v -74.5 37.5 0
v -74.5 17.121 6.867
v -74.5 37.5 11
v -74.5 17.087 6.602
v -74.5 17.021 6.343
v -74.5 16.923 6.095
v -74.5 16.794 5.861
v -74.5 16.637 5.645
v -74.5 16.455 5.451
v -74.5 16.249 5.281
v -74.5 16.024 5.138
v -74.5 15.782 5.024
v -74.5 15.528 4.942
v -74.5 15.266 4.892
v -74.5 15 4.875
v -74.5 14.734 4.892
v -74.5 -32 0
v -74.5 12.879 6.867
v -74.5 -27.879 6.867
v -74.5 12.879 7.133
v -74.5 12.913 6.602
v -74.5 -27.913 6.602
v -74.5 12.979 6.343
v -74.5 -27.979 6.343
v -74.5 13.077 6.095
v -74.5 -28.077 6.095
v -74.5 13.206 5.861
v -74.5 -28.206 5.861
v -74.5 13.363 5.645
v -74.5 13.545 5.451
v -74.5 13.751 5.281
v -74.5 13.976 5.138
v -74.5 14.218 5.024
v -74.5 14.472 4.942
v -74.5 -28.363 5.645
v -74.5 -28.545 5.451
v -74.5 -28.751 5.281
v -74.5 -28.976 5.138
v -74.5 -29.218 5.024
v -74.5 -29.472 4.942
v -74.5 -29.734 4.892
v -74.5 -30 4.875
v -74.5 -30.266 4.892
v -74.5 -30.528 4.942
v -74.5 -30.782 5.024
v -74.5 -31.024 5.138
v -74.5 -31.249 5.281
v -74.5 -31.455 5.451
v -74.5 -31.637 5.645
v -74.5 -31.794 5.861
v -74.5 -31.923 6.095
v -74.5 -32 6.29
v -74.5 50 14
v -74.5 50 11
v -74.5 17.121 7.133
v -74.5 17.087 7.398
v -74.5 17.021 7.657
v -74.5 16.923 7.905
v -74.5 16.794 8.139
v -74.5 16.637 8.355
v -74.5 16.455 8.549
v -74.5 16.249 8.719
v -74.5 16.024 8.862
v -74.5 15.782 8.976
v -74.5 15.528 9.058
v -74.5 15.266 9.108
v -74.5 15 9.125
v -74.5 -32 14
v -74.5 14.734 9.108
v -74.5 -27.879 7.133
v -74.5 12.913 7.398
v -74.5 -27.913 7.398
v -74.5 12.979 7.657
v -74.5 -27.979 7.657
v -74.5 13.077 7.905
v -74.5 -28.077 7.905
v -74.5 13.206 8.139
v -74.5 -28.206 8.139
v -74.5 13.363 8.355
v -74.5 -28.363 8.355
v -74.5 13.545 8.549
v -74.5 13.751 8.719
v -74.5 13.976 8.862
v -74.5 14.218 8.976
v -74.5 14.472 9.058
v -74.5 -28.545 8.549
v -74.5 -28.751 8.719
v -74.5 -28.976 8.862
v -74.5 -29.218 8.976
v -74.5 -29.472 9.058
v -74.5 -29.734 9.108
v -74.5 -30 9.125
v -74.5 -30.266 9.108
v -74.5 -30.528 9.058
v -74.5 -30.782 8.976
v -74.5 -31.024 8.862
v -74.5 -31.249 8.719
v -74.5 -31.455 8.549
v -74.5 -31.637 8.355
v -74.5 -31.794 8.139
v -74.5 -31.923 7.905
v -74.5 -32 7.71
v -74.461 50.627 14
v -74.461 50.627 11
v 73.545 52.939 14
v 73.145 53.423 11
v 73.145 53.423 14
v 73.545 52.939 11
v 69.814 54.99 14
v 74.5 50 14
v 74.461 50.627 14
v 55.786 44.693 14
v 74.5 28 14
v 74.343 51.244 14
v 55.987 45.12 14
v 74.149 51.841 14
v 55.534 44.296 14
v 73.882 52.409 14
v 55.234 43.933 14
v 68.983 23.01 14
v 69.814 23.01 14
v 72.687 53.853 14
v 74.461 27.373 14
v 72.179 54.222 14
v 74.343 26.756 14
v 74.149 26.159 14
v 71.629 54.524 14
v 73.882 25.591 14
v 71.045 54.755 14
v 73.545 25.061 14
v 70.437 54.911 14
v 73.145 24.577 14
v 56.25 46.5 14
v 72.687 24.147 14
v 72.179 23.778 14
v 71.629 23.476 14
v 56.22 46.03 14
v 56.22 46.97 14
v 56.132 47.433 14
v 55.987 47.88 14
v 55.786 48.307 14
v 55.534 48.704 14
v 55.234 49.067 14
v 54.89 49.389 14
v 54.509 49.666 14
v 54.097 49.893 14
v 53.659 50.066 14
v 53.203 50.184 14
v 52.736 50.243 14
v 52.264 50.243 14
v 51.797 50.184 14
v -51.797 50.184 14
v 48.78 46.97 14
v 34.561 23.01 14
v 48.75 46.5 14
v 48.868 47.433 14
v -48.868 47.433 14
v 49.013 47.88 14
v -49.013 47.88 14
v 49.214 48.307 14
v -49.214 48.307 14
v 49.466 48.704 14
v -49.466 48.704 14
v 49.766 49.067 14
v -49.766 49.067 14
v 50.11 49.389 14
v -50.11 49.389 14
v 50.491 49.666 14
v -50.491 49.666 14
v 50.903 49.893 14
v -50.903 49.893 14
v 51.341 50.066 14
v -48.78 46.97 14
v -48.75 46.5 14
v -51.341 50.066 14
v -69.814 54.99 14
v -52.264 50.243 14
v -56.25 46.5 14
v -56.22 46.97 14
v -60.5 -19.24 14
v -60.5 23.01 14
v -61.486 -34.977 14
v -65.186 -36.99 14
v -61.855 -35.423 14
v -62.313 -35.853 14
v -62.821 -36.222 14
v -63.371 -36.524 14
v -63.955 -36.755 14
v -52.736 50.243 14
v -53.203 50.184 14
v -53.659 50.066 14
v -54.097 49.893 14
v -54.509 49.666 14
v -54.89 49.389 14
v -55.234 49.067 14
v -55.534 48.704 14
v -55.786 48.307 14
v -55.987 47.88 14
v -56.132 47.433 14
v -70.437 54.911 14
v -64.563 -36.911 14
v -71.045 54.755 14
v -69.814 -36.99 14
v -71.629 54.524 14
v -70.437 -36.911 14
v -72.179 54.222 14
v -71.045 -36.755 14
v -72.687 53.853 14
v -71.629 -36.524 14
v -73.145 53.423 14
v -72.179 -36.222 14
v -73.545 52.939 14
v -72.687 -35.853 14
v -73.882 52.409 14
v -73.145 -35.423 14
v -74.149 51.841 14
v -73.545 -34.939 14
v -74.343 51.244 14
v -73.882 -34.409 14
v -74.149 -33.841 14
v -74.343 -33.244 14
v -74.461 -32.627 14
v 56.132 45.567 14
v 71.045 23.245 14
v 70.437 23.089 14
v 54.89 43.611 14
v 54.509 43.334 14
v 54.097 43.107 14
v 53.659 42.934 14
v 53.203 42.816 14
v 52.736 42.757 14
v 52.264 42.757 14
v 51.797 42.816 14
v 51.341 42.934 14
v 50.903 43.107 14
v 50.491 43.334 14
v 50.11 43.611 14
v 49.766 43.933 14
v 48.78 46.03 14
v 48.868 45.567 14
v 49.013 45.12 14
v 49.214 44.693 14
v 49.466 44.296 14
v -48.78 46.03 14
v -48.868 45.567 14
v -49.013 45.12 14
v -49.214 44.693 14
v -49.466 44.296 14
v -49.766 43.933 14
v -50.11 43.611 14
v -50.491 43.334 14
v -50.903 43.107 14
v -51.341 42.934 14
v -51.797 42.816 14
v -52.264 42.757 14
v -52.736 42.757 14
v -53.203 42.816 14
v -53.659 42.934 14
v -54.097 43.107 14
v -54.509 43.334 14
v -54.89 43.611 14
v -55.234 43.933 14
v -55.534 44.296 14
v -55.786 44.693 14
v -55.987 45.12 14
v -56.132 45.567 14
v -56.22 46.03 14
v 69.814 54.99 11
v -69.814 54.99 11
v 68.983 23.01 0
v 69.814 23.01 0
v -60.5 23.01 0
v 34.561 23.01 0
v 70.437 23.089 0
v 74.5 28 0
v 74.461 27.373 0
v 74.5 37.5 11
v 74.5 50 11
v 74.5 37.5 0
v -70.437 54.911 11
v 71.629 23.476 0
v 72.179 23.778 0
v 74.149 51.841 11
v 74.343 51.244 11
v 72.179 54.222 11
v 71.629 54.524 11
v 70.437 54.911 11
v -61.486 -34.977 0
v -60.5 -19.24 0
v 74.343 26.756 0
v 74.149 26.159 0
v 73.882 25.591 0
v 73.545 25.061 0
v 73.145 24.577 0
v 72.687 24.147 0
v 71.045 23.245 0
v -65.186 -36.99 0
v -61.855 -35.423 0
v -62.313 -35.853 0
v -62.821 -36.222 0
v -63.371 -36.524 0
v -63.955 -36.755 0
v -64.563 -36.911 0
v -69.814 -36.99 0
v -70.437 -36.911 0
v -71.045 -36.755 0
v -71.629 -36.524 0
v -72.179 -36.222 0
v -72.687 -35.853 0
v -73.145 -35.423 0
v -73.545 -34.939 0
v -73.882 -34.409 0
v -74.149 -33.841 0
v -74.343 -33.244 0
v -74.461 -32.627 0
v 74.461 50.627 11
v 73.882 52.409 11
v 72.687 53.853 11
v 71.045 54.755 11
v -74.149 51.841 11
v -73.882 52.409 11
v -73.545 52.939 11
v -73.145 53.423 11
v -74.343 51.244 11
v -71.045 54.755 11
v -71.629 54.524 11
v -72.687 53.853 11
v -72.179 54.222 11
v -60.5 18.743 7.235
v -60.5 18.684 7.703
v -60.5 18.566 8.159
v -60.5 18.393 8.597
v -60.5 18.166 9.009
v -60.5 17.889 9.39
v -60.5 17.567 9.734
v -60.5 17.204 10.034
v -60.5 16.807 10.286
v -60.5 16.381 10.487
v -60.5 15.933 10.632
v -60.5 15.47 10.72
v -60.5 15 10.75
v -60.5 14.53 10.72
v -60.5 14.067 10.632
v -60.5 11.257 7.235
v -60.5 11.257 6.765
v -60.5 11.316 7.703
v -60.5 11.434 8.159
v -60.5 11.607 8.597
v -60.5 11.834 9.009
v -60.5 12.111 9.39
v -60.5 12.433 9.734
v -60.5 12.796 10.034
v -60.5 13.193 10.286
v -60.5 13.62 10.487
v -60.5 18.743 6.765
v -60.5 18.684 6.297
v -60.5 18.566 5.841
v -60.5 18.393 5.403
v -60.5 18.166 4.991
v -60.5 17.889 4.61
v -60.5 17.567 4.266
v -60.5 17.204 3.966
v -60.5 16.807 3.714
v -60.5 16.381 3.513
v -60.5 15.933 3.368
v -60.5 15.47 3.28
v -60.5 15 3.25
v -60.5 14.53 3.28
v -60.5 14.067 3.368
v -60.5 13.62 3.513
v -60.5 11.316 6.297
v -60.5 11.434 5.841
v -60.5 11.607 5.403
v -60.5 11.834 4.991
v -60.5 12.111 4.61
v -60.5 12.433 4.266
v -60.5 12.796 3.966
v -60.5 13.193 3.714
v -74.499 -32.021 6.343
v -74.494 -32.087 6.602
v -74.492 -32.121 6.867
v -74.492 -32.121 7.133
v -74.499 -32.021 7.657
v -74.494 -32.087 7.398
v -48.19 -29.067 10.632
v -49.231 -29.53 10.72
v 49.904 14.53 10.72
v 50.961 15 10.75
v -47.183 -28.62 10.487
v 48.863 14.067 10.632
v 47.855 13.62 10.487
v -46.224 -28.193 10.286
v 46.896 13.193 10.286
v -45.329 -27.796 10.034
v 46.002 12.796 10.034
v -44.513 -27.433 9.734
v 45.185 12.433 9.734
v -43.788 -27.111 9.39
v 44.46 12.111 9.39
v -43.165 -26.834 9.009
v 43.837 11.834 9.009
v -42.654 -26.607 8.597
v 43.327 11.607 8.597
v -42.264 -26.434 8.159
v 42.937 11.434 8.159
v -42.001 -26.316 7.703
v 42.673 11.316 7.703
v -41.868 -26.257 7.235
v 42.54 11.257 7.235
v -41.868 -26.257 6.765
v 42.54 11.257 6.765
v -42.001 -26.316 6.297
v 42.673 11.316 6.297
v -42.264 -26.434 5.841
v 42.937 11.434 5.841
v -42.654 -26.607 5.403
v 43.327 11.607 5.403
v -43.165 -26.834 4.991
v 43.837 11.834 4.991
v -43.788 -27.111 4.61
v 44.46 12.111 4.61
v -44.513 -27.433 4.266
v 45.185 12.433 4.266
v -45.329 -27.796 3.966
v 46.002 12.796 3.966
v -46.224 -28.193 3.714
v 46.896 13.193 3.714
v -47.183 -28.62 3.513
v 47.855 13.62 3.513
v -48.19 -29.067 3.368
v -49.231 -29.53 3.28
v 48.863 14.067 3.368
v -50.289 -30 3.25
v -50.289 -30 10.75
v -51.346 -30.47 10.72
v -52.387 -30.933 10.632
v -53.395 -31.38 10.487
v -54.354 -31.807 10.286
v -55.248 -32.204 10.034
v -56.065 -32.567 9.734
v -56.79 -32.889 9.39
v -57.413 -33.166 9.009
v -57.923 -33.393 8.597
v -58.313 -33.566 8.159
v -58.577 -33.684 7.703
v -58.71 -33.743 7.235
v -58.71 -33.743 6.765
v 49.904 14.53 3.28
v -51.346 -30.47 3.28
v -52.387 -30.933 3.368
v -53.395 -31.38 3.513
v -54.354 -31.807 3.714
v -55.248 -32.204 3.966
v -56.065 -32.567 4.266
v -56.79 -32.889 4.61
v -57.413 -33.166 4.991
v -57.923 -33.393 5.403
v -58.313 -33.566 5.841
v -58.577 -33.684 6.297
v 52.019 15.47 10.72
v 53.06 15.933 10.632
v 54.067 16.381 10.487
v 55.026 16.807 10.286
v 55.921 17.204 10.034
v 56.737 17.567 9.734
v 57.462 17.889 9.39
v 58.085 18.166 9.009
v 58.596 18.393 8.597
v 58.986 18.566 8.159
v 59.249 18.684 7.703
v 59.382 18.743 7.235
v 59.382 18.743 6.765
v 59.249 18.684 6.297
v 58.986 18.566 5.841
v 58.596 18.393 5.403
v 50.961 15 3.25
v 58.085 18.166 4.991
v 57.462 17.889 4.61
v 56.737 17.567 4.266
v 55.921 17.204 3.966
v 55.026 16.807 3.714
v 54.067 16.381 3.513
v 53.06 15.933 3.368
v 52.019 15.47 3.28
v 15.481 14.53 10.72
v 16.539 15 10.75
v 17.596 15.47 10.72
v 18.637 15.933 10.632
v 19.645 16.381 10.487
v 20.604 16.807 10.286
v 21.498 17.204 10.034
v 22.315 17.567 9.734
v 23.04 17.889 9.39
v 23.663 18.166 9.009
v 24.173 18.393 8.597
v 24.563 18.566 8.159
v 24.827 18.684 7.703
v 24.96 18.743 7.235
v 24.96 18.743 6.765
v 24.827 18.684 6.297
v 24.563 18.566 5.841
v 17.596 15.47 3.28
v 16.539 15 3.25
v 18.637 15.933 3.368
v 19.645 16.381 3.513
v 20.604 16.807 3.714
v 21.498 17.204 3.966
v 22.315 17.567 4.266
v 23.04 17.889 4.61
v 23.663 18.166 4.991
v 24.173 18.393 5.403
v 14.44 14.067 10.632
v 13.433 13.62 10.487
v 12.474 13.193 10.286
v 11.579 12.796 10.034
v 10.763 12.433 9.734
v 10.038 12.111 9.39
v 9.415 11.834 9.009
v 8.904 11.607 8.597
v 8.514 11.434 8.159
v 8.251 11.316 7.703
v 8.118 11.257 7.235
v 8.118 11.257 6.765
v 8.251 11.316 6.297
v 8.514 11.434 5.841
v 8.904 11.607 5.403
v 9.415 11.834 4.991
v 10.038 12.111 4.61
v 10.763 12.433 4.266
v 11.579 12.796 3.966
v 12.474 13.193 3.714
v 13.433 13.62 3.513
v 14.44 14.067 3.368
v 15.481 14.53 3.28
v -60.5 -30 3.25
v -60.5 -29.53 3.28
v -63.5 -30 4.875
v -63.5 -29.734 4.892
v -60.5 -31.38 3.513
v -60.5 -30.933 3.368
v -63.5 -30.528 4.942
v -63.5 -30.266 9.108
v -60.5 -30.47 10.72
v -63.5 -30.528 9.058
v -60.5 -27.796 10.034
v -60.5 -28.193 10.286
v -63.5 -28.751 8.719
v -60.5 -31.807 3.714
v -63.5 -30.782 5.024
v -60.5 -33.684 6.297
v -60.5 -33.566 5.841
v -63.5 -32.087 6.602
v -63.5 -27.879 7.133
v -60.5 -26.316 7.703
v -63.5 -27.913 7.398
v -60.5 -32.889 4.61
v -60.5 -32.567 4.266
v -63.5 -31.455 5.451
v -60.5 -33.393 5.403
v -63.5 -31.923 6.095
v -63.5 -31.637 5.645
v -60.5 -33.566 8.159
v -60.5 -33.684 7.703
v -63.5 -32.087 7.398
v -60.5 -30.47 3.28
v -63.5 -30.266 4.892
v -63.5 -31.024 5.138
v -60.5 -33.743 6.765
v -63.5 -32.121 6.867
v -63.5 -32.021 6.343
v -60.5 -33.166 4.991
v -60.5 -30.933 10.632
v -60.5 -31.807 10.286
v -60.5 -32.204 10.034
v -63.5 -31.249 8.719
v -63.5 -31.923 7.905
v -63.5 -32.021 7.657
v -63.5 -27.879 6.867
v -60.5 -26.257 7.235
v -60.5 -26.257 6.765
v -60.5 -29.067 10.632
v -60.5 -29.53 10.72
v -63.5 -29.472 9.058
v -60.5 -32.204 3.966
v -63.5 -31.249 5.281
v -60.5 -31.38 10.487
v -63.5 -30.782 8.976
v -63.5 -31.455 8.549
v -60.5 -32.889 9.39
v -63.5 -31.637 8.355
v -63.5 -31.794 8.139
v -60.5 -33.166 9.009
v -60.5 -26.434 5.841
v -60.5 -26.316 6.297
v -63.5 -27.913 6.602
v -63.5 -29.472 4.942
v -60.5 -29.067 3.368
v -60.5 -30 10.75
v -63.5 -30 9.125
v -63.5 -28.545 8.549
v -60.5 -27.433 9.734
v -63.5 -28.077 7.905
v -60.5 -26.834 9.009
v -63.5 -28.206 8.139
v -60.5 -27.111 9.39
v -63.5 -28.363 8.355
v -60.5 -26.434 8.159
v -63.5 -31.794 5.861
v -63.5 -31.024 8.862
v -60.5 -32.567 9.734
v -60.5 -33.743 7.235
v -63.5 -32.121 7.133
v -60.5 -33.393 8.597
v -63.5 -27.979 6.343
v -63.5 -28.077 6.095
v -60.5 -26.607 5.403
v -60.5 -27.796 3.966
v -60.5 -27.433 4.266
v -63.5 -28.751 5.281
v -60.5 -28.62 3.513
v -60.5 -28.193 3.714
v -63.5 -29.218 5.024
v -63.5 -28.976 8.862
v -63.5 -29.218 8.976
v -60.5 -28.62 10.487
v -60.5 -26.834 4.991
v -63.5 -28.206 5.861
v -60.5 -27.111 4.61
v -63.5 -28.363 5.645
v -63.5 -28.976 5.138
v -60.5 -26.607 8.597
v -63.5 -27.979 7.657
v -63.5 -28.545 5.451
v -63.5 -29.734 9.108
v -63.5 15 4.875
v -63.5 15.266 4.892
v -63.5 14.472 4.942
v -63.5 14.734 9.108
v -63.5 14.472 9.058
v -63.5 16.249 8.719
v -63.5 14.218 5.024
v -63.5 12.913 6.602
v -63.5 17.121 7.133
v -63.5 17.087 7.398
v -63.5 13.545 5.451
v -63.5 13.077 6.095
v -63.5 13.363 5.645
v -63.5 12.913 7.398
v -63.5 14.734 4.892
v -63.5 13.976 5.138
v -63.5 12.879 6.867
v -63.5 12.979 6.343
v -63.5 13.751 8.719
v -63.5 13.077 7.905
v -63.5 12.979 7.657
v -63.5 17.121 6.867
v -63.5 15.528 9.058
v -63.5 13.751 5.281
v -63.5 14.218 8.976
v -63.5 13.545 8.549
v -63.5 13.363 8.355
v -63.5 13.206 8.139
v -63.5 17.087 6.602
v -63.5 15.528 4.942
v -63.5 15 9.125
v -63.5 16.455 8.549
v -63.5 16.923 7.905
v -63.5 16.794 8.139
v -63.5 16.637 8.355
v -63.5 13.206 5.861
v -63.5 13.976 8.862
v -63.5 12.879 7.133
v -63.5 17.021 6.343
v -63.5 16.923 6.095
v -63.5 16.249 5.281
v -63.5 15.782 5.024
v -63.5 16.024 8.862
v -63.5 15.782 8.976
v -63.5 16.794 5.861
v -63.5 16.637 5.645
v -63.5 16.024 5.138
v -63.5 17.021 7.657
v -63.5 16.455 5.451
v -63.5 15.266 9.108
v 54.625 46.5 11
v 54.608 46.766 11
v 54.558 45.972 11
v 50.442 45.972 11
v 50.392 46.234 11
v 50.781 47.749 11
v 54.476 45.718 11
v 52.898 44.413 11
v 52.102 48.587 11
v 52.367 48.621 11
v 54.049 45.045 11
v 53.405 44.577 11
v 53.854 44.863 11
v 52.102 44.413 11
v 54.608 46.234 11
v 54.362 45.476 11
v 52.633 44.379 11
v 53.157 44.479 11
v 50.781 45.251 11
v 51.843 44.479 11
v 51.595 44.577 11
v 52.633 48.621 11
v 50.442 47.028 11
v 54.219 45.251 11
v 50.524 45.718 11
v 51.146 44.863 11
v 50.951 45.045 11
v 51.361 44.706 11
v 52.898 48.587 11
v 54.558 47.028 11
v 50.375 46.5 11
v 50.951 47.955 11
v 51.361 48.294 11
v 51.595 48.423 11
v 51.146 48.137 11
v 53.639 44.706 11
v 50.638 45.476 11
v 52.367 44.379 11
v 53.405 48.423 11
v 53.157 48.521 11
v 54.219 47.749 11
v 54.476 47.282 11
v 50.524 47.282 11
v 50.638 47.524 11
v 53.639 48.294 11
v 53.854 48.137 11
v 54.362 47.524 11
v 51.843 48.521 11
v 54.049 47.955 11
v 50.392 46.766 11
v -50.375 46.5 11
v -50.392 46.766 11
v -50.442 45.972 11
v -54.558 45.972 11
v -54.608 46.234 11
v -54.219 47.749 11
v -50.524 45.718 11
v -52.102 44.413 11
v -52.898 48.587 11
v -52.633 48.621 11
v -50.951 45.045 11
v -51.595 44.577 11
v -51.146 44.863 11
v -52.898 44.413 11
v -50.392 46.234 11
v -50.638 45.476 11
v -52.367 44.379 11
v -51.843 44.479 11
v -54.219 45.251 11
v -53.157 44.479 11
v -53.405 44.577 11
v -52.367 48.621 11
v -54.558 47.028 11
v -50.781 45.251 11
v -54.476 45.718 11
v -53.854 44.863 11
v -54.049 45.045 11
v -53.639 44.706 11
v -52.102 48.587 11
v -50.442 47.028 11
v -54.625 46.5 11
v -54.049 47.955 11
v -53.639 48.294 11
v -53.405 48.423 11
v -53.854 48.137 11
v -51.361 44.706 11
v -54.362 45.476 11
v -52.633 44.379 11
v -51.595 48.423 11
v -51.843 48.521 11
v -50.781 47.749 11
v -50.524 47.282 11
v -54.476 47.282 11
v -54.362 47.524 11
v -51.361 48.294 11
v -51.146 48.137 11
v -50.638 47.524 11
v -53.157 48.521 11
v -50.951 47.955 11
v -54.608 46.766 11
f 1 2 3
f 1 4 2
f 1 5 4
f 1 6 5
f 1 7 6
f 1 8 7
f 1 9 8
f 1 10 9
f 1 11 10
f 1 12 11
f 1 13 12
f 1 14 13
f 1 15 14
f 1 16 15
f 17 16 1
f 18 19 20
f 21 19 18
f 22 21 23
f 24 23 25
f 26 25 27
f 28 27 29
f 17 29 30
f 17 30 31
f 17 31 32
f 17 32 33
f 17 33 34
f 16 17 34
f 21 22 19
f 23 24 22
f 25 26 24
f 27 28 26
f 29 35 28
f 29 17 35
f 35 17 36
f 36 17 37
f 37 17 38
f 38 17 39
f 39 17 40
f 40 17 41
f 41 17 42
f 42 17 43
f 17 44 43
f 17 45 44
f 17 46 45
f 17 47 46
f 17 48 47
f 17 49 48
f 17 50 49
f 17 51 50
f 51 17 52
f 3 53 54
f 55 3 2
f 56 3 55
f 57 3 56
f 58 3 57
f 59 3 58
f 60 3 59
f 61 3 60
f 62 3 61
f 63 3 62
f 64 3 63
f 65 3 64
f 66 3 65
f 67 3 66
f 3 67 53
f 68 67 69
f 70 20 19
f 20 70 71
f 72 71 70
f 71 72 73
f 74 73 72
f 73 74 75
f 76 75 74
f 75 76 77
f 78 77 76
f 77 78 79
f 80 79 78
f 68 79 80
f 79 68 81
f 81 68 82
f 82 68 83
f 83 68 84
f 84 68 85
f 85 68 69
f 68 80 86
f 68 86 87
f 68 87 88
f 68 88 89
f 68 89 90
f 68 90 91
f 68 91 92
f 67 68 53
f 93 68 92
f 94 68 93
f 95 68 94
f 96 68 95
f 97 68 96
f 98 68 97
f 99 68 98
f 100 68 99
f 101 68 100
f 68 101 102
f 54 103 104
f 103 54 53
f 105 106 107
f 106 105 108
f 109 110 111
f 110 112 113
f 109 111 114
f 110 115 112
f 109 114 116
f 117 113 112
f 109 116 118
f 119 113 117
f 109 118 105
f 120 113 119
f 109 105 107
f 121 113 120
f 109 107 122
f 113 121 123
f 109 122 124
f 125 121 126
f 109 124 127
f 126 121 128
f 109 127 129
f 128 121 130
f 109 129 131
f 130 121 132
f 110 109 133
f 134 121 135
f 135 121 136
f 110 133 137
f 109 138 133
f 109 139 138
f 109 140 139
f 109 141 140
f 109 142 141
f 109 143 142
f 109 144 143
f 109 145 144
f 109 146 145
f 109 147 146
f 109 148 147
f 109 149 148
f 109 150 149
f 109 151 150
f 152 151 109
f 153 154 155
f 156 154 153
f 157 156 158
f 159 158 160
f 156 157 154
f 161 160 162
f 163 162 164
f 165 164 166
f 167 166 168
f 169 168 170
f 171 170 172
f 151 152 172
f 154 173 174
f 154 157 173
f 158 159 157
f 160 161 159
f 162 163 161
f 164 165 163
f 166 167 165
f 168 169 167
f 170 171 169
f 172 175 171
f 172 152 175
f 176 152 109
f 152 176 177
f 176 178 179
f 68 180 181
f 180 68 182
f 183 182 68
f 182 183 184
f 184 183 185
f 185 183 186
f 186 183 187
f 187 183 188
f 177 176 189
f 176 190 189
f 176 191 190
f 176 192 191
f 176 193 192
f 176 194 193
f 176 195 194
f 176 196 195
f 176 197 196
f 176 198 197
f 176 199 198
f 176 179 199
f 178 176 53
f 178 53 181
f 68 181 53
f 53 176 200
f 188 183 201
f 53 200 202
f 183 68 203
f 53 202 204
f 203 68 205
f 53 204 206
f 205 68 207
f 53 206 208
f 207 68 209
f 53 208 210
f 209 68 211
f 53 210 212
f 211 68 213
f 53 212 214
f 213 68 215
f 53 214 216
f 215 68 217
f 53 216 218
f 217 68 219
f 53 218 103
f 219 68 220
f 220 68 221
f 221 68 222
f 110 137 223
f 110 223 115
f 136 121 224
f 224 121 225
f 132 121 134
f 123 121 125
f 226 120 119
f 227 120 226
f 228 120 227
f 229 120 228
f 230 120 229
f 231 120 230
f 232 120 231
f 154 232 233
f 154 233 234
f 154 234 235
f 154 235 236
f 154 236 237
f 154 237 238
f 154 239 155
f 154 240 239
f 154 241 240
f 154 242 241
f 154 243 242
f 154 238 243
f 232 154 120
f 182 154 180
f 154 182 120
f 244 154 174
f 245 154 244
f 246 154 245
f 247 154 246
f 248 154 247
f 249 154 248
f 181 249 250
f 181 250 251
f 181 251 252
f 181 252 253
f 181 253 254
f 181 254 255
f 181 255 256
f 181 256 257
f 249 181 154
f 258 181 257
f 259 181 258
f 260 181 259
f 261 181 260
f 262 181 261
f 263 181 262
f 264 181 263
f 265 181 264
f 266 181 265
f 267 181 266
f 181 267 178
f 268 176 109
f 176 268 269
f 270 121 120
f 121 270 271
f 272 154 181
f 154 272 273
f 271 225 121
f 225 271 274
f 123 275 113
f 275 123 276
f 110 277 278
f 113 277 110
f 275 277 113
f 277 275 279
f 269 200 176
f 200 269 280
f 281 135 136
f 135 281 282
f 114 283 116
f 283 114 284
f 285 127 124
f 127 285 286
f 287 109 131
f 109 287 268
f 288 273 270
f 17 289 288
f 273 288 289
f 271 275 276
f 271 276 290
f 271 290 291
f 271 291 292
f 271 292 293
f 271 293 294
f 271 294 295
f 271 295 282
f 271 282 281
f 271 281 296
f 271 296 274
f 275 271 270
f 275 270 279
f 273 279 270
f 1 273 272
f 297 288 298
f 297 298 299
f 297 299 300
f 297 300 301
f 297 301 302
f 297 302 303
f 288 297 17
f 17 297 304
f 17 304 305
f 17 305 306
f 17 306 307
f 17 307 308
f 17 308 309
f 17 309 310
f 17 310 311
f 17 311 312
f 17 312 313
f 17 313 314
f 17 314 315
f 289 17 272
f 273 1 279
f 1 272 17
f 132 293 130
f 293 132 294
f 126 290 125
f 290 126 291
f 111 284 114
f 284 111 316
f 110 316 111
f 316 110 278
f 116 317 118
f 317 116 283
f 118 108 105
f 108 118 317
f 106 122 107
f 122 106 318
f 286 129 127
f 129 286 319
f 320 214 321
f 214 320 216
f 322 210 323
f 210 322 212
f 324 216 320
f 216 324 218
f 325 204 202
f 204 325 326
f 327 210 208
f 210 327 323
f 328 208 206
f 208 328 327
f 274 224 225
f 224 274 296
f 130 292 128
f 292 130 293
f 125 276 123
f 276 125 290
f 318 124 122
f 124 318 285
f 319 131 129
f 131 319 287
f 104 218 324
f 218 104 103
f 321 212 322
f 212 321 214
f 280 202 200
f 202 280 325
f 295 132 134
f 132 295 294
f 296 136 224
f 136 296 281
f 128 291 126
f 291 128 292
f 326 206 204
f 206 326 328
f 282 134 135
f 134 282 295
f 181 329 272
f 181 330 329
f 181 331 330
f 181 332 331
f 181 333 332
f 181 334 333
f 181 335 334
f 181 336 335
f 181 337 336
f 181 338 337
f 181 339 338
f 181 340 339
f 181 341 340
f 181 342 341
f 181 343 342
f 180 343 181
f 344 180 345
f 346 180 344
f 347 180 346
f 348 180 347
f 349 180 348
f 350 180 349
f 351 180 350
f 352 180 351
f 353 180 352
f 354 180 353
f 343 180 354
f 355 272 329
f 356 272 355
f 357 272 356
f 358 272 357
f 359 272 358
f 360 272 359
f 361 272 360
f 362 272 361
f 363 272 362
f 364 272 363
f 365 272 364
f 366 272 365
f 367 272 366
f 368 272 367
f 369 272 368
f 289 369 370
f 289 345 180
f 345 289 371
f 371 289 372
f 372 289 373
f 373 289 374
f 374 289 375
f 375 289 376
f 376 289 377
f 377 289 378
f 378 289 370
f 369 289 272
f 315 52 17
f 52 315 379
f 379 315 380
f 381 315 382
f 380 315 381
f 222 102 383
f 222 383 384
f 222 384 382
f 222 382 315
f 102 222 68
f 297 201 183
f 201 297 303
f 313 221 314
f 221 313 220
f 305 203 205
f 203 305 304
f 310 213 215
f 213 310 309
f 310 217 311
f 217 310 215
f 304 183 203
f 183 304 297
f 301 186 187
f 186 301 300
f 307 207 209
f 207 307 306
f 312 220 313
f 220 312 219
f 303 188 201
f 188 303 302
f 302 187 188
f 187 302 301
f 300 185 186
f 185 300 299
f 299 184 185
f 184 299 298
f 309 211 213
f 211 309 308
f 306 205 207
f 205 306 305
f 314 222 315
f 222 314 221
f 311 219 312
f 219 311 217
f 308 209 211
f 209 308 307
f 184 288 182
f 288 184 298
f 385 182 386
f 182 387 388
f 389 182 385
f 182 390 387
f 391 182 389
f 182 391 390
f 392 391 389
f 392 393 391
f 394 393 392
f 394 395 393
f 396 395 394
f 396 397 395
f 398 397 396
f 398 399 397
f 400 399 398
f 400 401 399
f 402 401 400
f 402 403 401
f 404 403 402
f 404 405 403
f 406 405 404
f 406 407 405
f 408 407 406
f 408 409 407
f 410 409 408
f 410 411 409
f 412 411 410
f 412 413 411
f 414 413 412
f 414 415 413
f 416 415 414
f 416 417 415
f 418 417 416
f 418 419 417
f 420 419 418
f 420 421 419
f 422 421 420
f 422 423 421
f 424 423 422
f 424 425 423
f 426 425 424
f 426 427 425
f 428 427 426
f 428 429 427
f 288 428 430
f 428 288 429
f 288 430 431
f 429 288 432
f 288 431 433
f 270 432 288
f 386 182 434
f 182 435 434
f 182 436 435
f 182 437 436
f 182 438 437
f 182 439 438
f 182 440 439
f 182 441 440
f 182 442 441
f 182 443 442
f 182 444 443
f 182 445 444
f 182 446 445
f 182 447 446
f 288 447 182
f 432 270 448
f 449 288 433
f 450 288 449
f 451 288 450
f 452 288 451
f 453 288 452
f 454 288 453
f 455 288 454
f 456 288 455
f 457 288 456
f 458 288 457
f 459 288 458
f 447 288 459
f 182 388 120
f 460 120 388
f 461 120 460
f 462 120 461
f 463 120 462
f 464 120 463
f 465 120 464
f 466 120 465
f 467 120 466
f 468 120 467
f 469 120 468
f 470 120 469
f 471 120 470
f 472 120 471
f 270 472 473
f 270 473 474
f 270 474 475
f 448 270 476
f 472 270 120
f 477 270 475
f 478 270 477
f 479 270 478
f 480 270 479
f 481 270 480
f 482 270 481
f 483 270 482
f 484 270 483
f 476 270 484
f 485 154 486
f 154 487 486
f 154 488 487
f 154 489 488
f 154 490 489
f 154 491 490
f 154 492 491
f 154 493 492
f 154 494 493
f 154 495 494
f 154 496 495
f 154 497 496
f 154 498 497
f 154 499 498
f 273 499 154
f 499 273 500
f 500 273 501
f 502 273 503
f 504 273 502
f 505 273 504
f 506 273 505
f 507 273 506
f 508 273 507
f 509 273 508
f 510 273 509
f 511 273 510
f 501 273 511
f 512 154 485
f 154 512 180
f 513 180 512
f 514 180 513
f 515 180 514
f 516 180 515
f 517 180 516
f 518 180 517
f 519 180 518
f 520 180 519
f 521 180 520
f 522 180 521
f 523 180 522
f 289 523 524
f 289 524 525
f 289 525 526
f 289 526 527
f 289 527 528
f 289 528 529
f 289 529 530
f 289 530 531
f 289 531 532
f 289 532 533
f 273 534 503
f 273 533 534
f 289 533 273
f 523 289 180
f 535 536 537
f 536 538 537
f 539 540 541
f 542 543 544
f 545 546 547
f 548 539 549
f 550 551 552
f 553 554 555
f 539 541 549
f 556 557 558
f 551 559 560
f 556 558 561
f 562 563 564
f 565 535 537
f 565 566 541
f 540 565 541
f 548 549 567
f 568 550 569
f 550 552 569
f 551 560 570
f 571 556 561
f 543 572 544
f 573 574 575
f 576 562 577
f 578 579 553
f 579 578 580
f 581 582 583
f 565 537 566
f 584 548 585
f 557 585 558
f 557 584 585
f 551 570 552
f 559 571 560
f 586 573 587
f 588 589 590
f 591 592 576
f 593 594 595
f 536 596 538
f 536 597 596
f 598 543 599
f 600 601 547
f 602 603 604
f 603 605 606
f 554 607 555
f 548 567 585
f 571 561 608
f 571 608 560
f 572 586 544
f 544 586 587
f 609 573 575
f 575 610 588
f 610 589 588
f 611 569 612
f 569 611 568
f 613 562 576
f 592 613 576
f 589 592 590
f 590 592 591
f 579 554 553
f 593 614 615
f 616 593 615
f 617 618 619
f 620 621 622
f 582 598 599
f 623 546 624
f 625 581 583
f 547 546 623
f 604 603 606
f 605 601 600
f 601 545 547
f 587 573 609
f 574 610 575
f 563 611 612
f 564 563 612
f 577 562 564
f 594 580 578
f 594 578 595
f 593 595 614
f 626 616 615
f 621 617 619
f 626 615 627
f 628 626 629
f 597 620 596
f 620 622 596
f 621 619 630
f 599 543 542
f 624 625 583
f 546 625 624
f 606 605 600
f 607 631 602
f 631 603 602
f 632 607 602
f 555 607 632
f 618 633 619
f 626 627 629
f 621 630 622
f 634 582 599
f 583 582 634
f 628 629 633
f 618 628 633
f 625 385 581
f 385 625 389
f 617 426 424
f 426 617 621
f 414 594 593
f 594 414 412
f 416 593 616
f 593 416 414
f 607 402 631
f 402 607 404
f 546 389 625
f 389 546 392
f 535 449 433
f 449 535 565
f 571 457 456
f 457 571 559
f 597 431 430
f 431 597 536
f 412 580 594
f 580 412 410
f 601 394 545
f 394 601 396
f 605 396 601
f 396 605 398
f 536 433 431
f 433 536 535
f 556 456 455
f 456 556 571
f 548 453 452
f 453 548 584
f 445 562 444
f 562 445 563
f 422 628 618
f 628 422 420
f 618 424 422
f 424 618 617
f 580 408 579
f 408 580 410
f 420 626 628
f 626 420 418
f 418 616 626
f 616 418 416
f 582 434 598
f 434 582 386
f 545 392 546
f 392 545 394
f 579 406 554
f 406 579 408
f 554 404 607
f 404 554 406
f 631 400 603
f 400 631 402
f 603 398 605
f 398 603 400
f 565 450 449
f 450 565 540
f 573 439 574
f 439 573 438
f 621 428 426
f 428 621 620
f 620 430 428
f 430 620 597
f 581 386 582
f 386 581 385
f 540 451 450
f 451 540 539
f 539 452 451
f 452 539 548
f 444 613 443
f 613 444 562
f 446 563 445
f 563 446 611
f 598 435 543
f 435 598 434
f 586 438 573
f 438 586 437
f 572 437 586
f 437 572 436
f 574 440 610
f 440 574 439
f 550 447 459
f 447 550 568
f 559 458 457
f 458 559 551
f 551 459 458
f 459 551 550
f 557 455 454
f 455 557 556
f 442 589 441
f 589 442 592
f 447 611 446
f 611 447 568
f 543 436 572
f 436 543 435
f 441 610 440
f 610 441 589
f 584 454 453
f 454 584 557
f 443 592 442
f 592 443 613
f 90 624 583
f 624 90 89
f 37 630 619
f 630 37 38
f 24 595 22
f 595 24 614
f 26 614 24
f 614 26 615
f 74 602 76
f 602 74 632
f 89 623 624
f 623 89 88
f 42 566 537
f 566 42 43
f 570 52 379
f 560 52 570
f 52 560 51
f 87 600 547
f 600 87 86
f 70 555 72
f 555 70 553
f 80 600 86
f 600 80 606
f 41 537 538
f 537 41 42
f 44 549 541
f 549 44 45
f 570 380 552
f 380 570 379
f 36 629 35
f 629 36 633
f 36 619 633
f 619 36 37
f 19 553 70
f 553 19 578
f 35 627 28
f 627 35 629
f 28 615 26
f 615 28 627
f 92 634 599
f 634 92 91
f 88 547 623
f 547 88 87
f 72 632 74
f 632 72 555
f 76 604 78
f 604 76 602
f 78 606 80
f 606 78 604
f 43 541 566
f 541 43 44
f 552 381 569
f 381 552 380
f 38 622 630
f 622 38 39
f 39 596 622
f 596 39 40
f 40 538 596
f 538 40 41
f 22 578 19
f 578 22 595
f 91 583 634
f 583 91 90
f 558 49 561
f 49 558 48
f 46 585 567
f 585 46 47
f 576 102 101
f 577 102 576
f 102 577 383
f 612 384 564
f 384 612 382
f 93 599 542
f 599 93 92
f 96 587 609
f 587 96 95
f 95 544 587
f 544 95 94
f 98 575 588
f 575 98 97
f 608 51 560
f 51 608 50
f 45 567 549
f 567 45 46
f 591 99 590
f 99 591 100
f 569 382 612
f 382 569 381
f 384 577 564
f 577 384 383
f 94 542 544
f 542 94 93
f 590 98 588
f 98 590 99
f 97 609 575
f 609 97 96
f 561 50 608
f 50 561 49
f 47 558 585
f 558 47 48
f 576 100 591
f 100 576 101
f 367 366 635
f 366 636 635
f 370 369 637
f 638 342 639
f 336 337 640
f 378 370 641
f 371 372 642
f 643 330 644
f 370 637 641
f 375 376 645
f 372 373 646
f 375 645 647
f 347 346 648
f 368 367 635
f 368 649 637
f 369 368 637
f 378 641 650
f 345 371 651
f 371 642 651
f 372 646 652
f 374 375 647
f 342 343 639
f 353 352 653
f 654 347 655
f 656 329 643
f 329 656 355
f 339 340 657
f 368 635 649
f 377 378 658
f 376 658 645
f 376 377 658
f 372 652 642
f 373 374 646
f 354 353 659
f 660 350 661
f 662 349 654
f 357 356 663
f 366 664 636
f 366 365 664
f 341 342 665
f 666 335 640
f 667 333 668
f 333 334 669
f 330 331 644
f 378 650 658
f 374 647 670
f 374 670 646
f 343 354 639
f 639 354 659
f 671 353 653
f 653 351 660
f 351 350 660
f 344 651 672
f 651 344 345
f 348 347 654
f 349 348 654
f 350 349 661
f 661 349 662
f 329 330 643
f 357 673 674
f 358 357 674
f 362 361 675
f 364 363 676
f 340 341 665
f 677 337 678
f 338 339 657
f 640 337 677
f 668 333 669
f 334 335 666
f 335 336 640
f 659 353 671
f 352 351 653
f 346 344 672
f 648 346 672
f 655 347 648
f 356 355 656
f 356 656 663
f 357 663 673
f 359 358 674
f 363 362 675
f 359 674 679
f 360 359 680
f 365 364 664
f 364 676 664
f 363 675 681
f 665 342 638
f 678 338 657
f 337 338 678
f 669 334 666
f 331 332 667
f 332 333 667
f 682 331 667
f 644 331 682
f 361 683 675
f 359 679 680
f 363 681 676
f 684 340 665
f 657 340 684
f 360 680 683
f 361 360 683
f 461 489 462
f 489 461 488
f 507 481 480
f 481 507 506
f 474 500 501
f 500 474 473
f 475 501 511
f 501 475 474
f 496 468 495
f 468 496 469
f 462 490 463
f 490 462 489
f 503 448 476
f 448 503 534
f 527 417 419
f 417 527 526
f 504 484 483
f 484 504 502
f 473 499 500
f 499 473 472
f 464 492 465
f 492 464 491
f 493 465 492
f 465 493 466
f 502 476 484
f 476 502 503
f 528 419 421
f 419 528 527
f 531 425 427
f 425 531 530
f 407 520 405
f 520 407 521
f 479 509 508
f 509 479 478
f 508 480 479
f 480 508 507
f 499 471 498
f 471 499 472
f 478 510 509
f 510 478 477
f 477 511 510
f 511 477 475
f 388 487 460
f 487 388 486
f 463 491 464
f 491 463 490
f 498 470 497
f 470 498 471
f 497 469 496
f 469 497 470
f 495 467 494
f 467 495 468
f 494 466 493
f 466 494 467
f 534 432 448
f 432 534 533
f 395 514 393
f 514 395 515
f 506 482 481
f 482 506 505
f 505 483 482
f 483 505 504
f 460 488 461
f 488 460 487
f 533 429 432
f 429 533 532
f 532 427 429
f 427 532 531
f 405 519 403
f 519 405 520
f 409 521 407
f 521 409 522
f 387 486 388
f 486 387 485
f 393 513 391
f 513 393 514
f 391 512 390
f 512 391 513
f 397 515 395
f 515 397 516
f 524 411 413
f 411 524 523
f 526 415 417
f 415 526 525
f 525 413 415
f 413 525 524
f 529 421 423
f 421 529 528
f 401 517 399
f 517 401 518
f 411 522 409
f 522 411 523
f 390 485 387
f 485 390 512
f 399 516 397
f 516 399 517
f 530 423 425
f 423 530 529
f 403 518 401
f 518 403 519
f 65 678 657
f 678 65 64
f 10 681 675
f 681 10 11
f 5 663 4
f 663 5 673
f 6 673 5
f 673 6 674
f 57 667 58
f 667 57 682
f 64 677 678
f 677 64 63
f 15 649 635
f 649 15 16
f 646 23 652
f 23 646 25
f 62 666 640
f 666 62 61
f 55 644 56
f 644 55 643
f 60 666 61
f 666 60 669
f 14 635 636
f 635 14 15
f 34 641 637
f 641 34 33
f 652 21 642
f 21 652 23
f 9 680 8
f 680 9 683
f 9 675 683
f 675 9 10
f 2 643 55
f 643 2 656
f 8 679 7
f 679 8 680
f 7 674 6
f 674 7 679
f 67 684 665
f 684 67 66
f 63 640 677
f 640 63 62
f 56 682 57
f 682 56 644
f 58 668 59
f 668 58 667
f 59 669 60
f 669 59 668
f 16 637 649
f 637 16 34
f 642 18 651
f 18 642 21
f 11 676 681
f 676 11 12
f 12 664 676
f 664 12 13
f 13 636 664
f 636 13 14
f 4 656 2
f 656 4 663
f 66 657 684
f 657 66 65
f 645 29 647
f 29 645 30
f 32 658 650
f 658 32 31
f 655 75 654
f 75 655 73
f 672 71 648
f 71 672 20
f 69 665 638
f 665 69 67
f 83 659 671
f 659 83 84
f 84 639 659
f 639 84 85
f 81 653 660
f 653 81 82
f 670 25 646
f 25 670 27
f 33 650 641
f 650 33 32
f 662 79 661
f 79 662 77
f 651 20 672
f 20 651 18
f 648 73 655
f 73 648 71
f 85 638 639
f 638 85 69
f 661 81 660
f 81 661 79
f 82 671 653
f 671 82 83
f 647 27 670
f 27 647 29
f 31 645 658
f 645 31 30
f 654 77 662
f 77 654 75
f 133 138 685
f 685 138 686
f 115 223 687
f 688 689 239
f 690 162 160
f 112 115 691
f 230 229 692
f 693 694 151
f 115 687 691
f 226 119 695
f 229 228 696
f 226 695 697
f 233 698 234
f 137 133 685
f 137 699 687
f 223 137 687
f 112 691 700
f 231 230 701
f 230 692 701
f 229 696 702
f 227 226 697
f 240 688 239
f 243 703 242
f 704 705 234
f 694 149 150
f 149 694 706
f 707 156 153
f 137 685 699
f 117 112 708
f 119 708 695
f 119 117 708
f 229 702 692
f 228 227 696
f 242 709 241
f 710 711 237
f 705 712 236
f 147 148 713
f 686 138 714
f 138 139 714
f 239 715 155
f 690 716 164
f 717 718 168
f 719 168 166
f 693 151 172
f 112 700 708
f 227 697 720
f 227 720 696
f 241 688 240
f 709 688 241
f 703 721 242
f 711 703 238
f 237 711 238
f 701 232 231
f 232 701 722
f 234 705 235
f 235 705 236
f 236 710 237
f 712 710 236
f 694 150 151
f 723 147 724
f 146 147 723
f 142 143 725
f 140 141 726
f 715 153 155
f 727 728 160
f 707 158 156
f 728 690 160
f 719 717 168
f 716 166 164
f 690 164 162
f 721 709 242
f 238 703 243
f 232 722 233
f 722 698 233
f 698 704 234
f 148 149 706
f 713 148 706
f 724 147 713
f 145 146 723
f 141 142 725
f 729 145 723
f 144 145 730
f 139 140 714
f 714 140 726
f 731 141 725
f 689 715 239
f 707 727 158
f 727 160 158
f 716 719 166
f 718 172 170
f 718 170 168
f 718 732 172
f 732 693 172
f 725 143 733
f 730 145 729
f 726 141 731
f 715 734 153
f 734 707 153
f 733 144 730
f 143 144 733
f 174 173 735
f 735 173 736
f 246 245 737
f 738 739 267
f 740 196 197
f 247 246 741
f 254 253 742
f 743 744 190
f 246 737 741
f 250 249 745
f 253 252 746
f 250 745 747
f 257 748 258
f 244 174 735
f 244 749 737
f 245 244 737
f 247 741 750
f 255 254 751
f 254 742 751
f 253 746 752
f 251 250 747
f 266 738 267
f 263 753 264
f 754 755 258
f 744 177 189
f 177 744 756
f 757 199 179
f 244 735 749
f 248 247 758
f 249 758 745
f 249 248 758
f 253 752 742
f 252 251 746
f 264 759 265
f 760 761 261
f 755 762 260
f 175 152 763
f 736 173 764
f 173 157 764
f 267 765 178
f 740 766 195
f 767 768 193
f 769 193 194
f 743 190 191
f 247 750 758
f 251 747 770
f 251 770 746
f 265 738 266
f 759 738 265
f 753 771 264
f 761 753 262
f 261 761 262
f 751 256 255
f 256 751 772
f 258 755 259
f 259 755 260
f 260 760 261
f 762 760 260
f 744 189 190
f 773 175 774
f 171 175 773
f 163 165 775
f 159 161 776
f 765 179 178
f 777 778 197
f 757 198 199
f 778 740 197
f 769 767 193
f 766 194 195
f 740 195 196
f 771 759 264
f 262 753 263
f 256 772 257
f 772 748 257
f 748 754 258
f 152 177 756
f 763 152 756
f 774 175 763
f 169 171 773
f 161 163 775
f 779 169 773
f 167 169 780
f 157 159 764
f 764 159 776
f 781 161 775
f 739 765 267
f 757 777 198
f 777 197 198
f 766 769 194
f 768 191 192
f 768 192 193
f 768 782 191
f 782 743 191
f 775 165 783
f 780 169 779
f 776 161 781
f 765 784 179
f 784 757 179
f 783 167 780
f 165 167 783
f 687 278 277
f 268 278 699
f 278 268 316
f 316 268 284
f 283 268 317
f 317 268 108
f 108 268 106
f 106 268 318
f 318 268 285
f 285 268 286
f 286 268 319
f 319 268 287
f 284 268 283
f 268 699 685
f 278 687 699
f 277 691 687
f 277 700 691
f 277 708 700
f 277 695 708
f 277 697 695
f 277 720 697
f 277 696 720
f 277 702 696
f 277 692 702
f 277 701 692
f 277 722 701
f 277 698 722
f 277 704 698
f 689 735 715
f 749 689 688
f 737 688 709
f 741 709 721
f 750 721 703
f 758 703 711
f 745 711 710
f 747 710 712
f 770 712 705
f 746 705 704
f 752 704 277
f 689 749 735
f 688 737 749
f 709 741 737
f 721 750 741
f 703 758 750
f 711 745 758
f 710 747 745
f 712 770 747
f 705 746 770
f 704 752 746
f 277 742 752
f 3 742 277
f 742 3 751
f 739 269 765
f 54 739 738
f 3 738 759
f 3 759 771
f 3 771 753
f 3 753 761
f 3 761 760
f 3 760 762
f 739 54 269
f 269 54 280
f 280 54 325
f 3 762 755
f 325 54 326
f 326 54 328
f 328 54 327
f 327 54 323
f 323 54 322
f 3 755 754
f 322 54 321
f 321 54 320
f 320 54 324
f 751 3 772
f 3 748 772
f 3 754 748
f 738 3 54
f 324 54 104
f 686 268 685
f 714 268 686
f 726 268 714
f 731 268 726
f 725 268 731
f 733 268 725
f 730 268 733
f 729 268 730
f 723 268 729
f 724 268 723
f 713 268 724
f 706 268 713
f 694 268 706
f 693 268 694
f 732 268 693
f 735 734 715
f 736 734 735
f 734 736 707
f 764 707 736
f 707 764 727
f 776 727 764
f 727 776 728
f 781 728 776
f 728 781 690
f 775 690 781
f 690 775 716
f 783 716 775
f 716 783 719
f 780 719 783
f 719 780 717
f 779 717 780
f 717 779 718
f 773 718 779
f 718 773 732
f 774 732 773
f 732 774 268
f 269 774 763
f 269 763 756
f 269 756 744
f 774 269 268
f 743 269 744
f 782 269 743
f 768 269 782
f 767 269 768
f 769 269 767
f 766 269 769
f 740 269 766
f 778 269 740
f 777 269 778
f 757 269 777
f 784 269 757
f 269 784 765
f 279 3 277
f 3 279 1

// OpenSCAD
$fn = 50;


difference() {
	union() {
		translate(v = [0, 39.0000000000, 0]) {
			hull() {
				translate(v = [-69.5000000000, 11.0000000000, 0]) {
					cylinder(h = 14, r = 5);
				}
				translate(v = [69.5000000000, 11.0000000000, 0]) {
					cylinder(h = 14, r = 5);
				}
				translate(v = [-69.5000000000, -11.0000000000, 0]) {
					cylinder(h = 14, r = 5);
				}
				translate(v = [69.5000000000, -11.0000000000, 0]) {
					cylinder(h = 14, r = 5);
				}
			}
		}
		translate(v = [-67.5000000000, 0, 0]) {
			hull() {
				translate(v = [-2.0000000000, 32.0000000000, 0]) {
					cylinder(h = 14, r = 5);
				}
				translate(v = [2.0000000000, 32.0000000000, 0]) {
					cylinder(h = 14, r = 5);
				}
				translate(v = [-2.0000000000, -32.0000000000, 0]) {
					cylinder(h = 14, r = 5);
				}
				translate(v = [2.0000000000, -32.0000000000, 0]) {
					cylinder(h = 14, r = 5);
				}
			}
		}
		rotate(a = [0, 0, 23.9624889746]) {
			hull() {
				translate(v = [-73.3664335135, 2.0000000000, 0]) {
					cylinder(h = 14, r = 5);
				}
				translate(v = [73.3664335135, 2.0000000000, 0]) {
					cylinder(h = 14, r = 5);
				}
				translate(v = [-73.3664335135, -2.0000000000, 0]) {
					cylinder(h = 14, r = 5);
				}
				translate(v = [73.3664335135, -2.0000000000, 0]) {
					cylinder(h = 14, r = 5);
				}
			}
		}
	}
	union() {
		translate(v = [-60.5000000000, -30.0000000000, 7.0000000000]) {
			rotate(a = [0, 90, 0]) {
				difference() {
					union() {
						#translate(v = [0, 0, -14.0000000000]) {
							cylinder(h = 14, r = 2.0000000000);
						}
						#translate(v = [0, 0, -3]) {
							cylinder(h = 3, r1 = 2.1250000000, r2 = 3.7500000000);
						}
						#cylinder(h = 250, r = 3.7500000000);
						#translate(v = [0, 0, -14.0000000000]) {
							cylinder(h = 14, r = 2.1250000000);
						}
						#translate(v = [0, 0, -14.0000000000]) {
							cylinder(h = 14, r = 2.0000000000);
						}
					}
					union();
				}
			}
		}
		translate(v = [-60.5000000000, 15.0000000000, 7.0000000000]) {
			rotate(a = [0, 90, 0]) {
				difference() {
					union() {
						#translate(v = [0, 0, -14.0000000000]) {
							cylinder(h = 14, r = 2.0000000000);
						}
						#translate(v = [0, 0, -3]) {
							cylinder(h = 3, r1 = 2.1250000000, r2 = 3.7500000000);
						}
						#cylinder(h = 250, r = 3.7500000000);
						#translate(v = [0, 0, -14.0000000000]) {
							cylinder(h = 14, r = 2.1250000000);
						}
						#translate(v = [0, 0, -14.0000000000]) {
							cylinder(h = 14, r = 2.0000000000);
						}
					}
					union();
				}
			}
		}
		translate(v = [52.5000000000, 46.5000000000, 14.0000000000]) {
			rotate(a = [0, 0, 0]) {
				difference() {
					union() {
						#translate(v = [0, 0, -14.0000000000]) {
							cylinder(h = 14, r = 2.0000000000);
						}
						#translate(v = [0, 0, -3]) {
							cylinder(h = 3, r1 = 2.1250000000, r2 = 3.7500000000);
						}
						#cylinder(h = 250, r = 3.7500000000);
						#translate(v = [0, 0, -14.0000000000]) {
							cylinder(h = 14, r = 2.1250000000);
						}
						#translate(v = [0, 0, -14.0000000000]) {
							cylinder(h = 14, r = 2.0000000000);
						}
					}
					union();
				}
			}
		}
		translate(v = [-52.5000000000, 46.5000000000, 14.0000000000]) {
			rotate(a = [0, 0, 0]) {
				difference() {
					union() {
						#translate(v = [0, 0, -14.0000000000]) {
							cylinder(h = 14, r = 2.0000000000);
						}
						#translate(v = [0, 0, -3]) {
							cylinder(h = 3, r1 = 2.1250000000, r2 = 3.7500000000);
						}
						#cylinder(h = 250, r = 3.7500000000);
						#translate(v = [0, 0, -14.0000000000]) {
							cylinder(h = 14, r = 2.1250000000);
						}
						#translate(v = [0, 0, -14.0000000000]) {
							cylinder(h = 14, r = 2.0000000000);
						}
					}
					union();
				}
			}
		}
		translate(v = [-74.5000000000, 37.5000000000, 0]) {
			cube(size = [149, 18, 11]);
		}
	}
}
